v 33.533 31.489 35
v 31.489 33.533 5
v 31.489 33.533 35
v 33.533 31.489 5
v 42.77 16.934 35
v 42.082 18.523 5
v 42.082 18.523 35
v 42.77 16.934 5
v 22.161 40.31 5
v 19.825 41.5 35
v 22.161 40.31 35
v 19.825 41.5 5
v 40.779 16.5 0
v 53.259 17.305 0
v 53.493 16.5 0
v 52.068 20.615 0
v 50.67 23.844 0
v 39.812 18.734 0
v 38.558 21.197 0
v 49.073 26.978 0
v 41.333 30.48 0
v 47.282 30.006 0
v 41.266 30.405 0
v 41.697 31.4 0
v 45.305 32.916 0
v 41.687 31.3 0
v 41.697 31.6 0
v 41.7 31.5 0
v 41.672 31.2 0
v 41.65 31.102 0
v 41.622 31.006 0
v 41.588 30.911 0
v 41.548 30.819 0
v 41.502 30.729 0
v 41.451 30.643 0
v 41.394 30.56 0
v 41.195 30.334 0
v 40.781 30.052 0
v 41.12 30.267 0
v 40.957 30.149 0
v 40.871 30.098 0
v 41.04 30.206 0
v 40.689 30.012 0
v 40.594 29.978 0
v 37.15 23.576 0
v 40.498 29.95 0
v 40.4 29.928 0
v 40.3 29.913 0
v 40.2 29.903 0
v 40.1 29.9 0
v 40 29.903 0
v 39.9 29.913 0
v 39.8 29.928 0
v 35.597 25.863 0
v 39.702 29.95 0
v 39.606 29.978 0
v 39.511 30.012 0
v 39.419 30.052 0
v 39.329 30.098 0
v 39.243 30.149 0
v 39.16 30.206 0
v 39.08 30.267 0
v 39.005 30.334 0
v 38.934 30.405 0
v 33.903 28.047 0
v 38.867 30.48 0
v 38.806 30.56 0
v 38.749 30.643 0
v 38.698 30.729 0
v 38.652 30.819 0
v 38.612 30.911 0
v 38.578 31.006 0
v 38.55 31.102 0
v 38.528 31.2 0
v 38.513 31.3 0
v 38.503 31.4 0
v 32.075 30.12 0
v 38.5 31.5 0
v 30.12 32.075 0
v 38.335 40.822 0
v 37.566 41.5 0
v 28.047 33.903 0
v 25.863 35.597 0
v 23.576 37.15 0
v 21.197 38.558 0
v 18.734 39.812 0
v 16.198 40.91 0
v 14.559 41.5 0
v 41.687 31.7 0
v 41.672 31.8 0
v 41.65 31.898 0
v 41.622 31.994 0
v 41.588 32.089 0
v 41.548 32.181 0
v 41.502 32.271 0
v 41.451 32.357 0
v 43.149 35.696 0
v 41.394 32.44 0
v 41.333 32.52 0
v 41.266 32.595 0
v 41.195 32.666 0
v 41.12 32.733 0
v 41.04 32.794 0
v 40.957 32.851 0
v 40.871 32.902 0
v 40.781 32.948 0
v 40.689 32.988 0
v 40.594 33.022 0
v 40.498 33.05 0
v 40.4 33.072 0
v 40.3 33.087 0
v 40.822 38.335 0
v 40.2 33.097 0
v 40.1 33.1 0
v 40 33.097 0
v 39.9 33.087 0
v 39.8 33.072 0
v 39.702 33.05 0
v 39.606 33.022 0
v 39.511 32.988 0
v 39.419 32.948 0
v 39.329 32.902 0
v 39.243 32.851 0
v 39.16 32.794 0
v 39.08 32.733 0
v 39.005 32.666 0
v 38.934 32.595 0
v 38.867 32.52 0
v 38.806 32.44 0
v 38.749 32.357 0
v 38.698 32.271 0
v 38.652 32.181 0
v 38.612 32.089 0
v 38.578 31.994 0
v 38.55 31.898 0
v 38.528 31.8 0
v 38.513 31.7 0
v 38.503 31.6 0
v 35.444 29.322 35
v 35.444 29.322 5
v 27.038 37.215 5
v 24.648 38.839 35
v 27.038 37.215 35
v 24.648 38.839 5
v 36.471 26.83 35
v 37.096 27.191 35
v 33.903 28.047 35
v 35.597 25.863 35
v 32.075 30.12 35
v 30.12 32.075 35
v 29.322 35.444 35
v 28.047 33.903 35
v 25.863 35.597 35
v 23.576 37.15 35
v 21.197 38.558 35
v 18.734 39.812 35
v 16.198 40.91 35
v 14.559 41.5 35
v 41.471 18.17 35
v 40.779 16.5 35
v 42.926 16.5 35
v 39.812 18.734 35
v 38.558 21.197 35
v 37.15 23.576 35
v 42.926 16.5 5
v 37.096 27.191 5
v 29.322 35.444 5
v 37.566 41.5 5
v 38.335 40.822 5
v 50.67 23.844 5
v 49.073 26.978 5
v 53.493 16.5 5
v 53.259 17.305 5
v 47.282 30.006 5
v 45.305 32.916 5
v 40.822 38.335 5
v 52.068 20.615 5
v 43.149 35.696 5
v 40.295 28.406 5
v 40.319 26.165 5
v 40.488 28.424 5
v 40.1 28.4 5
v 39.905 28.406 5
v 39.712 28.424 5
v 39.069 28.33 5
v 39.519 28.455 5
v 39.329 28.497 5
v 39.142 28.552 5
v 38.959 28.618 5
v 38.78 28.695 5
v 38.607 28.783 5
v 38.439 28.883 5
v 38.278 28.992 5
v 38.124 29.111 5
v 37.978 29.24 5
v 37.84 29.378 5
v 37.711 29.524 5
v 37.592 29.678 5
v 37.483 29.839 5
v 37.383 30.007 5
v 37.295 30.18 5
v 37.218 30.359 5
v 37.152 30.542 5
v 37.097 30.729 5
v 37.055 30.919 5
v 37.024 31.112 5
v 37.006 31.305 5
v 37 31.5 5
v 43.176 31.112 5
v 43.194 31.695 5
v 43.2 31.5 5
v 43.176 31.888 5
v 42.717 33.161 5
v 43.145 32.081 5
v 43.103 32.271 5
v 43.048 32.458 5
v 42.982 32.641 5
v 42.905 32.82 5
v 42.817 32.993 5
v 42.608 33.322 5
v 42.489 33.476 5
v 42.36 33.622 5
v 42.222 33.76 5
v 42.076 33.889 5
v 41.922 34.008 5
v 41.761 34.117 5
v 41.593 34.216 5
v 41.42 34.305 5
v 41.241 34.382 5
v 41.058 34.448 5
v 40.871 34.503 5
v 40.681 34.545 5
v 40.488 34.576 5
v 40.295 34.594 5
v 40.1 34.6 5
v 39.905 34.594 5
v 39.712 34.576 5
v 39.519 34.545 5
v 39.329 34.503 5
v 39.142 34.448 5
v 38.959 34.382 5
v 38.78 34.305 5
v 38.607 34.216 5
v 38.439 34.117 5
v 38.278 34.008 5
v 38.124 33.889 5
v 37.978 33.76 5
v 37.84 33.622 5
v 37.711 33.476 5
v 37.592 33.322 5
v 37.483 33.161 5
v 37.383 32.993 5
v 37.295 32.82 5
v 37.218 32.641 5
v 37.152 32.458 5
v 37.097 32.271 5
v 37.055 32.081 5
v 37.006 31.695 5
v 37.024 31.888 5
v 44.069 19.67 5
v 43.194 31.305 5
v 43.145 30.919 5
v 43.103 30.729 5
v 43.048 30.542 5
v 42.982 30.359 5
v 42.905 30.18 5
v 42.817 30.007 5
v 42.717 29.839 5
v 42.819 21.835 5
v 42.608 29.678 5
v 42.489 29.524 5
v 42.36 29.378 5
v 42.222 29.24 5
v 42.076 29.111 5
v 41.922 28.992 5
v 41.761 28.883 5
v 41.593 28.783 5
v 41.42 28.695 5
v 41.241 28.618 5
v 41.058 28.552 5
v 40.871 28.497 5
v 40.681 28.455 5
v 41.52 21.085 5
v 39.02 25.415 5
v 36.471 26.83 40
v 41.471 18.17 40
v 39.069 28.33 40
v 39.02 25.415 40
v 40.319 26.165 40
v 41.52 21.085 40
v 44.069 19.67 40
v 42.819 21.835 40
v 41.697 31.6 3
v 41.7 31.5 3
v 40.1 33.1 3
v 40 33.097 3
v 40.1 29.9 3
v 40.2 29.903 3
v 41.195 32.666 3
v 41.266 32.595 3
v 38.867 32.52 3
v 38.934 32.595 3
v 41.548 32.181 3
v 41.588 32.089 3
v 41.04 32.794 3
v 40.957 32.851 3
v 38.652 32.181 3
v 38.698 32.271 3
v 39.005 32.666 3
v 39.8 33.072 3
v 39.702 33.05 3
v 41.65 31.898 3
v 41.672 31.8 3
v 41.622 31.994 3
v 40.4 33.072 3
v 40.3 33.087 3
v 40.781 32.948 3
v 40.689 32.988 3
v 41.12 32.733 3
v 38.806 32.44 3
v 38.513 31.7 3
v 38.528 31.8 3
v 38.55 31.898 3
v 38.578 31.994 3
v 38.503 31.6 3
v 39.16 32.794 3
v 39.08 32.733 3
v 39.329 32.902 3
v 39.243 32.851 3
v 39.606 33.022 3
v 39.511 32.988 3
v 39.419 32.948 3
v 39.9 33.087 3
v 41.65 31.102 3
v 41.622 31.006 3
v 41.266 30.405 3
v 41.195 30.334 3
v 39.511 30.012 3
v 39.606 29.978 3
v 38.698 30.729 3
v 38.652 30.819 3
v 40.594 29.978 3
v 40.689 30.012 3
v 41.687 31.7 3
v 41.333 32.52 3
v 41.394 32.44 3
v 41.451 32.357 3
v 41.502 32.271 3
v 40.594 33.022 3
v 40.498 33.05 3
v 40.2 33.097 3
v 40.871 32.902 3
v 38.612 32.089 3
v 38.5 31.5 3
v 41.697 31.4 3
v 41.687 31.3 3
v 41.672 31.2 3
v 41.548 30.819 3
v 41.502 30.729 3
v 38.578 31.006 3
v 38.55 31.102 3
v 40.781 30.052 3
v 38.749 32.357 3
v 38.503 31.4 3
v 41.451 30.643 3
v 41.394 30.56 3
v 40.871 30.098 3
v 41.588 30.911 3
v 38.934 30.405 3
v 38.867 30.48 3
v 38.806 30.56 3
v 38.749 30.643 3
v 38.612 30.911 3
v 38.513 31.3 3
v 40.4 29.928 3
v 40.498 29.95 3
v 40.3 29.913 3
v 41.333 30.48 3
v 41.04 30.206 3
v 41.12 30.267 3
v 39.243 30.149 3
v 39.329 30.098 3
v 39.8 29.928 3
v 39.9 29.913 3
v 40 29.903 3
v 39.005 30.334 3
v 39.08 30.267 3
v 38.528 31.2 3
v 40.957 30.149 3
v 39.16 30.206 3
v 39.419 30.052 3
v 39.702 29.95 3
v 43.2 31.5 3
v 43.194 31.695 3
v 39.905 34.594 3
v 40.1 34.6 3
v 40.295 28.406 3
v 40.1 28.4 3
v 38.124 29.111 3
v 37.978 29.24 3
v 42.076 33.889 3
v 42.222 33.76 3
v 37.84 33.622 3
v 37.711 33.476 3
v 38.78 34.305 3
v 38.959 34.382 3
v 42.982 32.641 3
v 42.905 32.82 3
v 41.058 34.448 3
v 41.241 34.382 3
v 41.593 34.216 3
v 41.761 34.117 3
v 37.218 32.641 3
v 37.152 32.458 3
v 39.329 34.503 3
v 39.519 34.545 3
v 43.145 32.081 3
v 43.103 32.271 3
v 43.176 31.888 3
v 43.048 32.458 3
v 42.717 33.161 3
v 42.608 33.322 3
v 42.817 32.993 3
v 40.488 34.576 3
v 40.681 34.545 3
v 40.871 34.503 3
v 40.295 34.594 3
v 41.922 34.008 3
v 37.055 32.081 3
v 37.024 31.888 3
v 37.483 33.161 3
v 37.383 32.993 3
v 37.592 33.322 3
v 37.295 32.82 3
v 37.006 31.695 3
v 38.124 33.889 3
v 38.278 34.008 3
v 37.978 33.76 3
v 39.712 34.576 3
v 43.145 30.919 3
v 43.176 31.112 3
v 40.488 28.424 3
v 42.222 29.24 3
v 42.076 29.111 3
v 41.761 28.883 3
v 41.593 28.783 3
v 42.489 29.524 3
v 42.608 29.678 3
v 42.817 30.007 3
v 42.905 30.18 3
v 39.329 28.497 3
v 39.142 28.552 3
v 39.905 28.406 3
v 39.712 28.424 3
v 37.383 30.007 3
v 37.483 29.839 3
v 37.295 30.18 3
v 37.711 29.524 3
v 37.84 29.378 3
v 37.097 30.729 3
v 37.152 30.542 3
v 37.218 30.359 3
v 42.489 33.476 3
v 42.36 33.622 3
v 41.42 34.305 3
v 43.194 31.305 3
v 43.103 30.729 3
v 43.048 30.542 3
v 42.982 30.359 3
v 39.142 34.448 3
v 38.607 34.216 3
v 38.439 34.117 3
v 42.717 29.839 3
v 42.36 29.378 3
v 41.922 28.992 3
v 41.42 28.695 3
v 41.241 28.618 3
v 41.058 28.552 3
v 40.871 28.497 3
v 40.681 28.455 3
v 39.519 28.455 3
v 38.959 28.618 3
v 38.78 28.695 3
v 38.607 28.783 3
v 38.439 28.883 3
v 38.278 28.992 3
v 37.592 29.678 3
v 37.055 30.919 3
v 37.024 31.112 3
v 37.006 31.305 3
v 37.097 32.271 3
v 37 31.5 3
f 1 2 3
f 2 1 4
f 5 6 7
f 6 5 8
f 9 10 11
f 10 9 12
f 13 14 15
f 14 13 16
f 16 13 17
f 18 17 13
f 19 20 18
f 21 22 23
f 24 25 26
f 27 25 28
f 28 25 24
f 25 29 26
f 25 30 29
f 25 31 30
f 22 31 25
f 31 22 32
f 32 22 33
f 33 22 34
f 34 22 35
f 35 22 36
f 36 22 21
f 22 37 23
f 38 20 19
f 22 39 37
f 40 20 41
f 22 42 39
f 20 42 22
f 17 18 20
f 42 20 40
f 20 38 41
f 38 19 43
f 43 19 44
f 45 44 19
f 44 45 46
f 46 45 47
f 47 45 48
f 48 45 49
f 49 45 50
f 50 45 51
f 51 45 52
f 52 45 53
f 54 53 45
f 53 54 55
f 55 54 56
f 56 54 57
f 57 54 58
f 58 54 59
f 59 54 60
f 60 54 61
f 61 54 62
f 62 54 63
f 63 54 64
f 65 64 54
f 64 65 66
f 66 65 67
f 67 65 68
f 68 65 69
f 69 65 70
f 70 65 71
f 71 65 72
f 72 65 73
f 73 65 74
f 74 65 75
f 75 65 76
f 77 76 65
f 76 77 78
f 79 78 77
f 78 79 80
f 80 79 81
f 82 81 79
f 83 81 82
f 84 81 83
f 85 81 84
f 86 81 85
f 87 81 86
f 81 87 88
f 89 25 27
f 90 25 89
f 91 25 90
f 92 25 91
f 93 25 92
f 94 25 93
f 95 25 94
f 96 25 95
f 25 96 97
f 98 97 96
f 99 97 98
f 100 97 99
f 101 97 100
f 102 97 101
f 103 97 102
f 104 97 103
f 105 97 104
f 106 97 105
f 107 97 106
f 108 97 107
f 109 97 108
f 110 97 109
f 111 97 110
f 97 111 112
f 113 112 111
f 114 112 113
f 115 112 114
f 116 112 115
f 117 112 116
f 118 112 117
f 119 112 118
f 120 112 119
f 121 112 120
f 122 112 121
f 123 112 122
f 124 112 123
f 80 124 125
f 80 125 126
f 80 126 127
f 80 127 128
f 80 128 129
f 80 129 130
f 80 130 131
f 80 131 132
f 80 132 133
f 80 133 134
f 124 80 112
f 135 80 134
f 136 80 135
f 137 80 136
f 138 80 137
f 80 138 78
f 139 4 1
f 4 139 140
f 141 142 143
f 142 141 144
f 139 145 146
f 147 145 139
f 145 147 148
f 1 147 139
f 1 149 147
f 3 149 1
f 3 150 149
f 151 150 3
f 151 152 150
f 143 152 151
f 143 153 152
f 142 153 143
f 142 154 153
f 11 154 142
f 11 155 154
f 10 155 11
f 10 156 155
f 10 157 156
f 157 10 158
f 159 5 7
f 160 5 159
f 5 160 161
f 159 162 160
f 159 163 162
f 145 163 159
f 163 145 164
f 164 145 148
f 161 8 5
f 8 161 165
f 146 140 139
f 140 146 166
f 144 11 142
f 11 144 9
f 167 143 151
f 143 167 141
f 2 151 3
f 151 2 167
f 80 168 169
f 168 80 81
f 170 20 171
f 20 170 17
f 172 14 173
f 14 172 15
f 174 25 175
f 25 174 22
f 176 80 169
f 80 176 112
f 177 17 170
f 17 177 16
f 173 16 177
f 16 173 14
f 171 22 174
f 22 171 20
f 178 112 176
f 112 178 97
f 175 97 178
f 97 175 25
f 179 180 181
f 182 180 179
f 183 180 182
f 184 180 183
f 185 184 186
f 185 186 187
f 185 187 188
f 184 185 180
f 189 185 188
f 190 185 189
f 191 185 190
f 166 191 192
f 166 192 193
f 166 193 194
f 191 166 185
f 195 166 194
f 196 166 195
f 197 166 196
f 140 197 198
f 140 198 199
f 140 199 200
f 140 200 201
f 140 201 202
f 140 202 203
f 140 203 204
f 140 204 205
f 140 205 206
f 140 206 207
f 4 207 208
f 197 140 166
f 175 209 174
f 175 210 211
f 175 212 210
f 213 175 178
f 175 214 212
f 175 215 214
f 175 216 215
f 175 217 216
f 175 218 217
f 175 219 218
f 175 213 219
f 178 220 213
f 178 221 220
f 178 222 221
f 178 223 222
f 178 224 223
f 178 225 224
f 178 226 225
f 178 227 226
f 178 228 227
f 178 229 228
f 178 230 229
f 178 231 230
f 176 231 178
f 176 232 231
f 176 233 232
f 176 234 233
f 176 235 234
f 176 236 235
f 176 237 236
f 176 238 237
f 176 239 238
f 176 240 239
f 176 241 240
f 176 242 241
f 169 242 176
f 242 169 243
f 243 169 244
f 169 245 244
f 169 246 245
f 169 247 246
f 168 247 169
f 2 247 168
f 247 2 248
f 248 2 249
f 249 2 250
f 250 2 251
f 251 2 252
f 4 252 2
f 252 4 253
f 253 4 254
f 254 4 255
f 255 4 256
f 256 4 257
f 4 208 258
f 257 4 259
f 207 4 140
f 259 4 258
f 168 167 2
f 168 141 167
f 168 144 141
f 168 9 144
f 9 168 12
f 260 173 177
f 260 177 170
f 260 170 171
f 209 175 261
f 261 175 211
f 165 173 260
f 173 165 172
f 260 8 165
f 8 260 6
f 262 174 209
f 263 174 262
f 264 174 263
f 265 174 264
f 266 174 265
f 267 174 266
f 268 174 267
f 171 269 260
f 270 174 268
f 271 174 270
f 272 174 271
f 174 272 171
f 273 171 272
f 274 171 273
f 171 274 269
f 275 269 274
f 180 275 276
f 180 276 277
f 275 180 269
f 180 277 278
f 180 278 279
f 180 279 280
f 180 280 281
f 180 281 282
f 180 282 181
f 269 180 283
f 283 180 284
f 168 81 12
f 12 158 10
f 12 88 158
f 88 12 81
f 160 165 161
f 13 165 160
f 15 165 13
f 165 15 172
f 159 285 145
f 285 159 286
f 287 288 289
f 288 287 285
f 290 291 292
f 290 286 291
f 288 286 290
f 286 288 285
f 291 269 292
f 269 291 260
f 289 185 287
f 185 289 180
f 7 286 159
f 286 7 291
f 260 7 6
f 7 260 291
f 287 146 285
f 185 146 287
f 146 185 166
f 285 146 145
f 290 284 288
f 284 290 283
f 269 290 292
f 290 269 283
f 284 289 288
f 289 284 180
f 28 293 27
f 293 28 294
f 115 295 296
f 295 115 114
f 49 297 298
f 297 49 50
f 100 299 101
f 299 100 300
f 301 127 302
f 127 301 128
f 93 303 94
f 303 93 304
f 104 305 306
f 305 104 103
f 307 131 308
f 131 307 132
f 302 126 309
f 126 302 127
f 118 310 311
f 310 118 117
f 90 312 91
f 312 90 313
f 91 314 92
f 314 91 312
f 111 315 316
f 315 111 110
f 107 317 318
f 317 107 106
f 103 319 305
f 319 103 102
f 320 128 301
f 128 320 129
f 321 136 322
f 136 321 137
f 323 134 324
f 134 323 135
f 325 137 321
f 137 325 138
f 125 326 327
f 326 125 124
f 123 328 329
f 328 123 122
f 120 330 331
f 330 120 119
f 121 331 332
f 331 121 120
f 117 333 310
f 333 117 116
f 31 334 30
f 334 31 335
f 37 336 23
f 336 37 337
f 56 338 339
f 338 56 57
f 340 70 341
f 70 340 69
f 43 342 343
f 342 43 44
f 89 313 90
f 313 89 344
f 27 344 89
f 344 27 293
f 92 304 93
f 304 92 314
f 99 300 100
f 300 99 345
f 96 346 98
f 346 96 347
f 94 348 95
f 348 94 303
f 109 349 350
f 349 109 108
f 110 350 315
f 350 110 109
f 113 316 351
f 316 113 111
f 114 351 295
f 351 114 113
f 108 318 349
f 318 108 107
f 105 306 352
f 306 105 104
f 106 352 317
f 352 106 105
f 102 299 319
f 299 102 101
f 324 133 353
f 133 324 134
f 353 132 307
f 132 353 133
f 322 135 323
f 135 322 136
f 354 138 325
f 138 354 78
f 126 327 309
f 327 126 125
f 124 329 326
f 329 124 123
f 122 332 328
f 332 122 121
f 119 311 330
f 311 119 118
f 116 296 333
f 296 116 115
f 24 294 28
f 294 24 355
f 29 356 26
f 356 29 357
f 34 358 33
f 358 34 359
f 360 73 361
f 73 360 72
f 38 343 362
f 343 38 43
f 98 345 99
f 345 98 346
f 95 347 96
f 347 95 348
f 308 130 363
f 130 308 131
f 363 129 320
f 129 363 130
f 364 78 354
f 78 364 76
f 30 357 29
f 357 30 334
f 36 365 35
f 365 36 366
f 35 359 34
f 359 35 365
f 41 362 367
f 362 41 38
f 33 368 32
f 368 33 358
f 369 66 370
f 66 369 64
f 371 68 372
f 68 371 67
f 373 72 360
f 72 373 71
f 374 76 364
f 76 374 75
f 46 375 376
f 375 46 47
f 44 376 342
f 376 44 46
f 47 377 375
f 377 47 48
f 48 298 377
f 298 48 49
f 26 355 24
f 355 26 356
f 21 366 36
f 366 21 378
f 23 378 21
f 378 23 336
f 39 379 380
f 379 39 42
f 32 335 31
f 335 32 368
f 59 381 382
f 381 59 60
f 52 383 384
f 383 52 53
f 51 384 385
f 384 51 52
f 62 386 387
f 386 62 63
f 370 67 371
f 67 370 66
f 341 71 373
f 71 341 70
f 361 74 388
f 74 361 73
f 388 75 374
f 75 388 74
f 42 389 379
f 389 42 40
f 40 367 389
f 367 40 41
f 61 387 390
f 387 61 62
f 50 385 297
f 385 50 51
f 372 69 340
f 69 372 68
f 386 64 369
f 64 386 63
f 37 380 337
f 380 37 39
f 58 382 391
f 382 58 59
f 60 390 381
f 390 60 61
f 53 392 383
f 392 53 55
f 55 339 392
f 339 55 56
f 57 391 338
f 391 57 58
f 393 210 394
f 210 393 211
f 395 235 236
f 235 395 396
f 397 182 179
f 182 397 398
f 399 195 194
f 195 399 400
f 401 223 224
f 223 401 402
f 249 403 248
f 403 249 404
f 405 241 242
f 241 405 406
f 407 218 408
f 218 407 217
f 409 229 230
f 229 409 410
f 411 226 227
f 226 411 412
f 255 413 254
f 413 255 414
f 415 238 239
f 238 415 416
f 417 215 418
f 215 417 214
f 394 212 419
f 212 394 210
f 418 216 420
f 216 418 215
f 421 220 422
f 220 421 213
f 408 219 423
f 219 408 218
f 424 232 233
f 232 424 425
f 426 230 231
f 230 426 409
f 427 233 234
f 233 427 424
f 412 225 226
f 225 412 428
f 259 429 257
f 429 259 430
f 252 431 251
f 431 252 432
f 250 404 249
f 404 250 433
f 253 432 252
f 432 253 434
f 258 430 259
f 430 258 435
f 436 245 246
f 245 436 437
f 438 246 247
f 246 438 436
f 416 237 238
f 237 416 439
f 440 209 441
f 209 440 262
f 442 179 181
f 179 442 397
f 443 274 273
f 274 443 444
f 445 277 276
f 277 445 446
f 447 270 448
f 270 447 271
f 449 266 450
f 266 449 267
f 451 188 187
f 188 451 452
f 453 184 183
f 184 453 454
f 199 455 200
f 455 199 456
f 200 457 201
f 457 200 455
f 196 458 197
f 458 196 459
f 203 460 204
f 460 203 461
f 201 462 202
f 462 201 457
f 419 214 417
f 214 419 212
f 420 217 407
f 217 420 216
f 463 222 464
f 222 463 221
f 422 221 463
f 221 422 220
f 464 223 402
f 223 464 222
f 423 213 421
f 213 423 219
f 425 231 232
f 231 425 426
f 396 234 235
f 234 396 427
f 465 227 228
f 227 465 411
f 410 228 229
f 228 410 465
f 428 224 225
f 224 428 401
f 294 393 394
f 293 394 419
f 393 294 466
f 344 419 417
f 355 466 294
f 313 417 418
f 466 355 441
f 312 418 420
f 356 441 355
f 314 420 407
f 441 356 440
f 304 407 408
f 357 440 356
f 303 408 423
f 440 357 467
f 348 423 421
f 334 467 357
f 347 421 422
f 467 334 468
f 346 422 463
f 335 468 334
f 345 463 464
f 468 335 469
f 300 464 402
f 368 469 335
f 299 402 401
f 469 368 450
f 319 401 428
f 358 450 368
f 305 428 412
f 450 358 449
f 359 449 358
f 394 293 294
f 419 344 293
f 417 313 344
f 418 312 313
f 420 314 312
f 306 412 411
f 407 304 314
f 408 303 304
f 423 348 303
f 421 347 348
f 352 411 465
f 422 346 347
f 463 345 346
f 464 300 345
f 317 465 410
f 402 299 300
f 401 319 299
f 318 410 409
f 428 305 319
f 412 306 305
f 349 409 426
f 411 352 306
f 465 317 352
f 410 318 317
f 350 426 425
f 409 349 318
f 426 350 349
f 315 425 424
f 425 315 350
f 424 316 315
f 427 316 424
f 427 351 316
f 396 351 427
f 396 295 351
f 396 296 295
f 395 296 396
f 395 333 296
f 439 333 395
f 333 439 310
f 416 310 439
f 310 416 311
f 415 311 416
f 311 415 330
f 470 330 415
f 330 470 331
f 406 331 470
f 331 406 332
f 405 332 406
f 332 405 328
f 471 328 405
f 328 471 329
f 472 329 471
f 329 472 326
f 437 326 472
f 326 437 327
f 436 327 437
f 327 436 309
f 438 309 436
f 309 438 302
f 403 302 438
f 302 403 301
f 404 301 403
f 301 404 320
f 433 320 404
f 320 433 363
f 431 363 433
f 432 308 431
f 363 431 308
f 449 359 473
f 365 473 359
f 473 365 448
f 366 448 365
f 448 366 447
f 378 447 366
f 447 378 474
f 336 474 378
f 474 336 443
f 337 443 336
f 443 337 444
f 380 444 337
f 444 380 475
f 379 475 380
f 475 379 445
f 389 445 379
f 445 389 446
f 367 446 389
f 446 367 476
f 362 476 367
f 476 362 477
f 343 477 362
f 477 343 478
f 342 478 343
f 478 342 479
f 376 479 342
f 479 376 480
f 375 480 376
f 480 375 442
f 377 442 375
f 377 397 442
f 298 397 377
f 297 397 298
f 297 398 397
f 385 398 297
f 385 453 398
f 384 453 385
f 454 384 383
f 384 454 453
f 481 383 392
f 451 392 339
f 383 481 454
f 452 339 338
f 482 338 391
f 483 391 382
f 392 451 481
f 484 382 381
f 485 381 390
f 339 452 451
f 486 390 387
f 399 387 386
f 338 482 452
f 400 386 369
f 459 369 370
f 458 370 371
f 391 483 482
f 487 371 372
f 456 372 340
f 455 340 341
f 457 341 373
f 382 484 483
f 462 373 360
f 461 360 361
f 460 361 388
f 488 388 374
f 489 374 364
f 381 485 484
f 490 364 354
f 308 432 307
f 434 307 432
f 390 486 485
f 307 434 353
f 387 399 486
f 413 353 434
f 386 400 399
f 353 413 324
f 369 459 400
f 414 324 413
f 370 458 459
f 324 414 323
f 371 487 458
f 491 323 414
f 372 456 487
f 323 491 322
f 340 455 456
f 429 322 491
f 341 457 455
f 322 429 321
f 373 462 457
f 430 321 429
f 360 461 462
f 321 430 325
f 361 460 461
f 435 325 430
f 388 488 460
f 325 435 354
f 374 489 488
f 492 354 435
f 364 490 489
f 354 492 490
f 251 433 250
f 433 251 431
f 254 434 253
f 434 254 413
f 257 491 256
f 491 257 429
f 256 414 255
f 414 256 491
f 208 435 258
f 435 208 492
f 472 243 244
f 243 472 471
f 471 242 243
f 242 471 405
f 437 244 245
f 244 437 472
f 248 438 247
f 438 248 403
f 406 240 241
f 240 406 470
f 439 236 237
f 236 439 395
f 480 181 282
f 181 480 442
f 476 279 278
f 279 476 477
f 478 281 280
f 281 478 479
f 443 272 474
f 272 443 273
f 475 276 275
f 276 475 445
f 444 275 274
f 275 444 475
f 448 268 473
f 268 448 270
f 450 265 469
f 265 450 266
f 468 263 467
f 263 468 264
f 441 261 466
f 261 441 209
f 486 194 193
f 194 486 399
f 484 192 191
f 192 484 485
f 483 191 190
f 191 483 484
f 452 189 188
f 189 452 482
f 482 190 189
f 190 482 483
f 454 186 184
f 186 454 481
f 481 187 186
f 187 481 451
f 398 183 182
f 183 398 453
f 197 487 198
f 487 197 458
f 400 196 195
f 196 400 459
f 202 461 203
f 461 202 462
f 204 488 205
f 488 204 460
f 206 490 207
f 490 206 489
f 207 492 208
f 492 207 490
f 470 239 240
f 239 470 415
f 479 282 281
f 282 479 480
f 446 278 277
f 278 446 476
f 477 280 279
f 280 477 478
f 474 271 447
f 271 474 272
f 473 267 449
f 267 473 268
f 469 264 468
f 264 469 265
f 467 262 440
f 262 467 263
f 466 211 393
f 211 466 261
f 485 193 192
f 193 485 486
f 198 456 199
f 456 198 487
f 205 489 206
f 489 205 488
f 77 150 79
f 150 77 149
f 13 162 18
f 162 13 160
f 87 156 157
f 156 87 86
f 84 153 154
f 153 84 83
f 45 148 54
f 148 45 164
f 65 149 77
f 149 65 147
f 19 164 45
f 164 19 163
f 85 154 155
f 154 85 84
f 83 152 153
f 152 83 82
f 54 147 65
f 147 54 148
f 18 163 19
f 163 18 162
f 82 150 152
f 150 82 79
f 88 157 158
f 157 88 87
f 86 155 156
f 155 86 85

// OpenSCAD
$fn=100;


difference(){
    union(){
        intersection(){
            union(){
                cylinder(d=88+4, h = 35);
                cylinder(d=88+4+20, h = 5);
            }
            translate([0,31.5-15,0]) cube([100, 25, 35]);
        }
        rotate(30) translate([44+1, -5, 0]) difference(){
            cube([3, 10, 40]);
            translate([1.5, 2.5, 0]) cube([1.5, 5, 40]);
        }
       }
    
    // tohle je prumer konce RA osy
    translate([40.1, -31.5, 0]) cylinder(d=3.2, h=10);
    translate([40.1, 31.5, 0]) cylinder(d=3.2, h=10);
    
    
    #translate([40.1, -31.5, 3]) cylinder(d=6.2, h=30);
    #translate([40.1, 31.5, 3]) cylinder(d=6.2, h=30);
    
    cylinder(d=88, h = 100);
}
